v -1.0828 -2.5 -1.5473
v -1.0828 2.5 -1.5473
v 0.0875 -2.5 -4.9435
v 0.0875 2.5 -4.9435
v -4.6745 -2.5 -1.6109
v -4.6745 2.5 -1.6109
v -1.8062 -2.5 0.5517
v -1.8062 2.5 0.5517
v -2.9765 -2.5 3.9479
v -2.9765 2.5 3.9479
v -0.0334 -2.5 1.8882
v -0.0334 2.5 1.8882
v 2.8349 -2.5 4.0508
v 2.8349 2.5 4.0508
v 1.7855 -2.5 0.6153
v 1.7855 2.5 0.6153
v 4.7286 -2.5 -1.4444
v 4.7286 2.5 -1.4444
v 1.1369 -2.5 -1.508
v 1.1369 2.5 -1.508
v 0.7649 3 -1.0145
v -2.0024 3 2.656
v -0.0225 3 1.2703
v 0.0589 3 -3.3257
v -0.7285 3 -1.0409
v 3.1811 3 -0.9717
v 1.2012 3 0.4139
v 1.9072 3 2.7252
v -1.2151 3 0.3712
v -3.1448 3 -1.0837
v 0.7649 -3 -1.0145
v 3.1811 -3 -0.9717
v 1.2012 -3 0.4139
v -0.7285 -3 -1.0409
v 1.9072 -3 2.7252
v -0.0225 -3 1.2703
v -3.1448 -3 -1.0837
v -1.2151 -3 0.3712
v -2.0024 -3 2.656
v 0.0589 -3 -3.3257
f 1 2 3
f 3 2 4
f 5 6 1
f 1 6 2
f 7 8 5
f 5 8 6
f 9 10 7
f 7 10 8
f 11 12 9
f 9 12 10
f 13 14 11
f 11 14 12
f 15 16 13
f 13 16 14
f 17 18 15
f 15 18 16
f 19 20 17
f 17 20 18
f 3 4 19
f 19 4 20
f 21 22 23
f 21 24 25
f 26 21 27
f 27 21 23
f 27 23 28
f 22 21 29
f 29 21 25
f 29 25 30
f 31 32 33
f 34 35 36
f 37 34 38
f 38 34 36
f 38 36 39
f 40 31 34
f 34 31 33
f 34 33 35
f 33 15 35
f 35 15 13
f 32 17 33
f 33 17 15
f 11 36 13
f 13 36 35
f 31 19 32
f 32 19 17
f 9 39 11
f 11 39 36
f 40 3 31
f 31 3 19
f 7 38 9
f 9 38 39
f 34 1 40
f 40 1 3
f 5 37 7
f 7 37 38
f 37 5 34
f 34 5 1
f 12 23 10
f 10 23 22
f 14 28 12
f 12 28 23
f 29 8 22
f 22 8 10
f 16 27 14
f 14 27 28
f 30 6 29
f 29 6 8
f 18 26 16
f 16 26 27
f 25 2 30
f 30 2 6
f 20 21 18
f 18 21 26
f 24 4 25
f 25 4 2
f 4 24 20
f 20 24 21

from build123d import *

# Parameters (mm, degrees)
BOSS_EXTRUDE1_DEPTH = 3
CHAMFER1_SIZE       = 0.5


with BuildPart() as part:
    # Sketch1 → Boss-Extrude1 (new, symmetric)
    with BuildSketch(Plane(origin=(0, 0, 0), x_dir=(1, 0, 0), z_dir=(0, 1, 0))):
        Polygon((-4.674503569, 1.610851049), (-1.08284245, 1.547271789), (0.087509344, 4.943497429), (1.136926198, 1.507977646), (4.728587318, 1.444398386), (1.785501483, -0.61529035), (2.834918338, -4.050810134), (-0.033425595, -1.888247995), (-2.97651143, -3.94793673), (-1.806159637, -0.55171109), align=None)
    extrude(amount=BOSS_EXTRUDE1_DEPTH, both=True)

    # Chamfer1
    chamfer1_edges = [part.edges().sort_by_distance(p)[0] for p in [
        (0.612217771, -3, -3.225737537),
        (2.932756758, -3, -1.476188016),
        (3.2570444, -3, -0.414554018),
        (2.31020991, -3, 2.333050242),
        (1.400746371, -3, 2.969529064),
        (-1.504968513, -3, 2.918092363),
        (-2.391335533, -3, 2.24982391),
        (-3.240331603, 3, -0.529569979),
        (-3.240331603, -3, -0.529569979),
        (-2.878673009, -3, -1.579061419),
        (-0.497666553, -3, -3.245384609),
        (-2.391335533, 3, 2.24982391),
        (-1.504968513, 3, 2.918092363),
        (1.400746371, 3, 2.969529064),
        (2.31020991, 3, 2.333050242),
        (3.2570444, 3, -0.414554018),
        (2.932756758, 3, -1.476188016),
        (0.612217771, 3, -3.225737537),
        (-0.497666553, 3, -3.245384609),
        (-2.878673009, 3, -1.579061419),
    ]]
    chamfer(chamfer1_edges, length=CHAMFER1_SIZE)


solid = part.part
